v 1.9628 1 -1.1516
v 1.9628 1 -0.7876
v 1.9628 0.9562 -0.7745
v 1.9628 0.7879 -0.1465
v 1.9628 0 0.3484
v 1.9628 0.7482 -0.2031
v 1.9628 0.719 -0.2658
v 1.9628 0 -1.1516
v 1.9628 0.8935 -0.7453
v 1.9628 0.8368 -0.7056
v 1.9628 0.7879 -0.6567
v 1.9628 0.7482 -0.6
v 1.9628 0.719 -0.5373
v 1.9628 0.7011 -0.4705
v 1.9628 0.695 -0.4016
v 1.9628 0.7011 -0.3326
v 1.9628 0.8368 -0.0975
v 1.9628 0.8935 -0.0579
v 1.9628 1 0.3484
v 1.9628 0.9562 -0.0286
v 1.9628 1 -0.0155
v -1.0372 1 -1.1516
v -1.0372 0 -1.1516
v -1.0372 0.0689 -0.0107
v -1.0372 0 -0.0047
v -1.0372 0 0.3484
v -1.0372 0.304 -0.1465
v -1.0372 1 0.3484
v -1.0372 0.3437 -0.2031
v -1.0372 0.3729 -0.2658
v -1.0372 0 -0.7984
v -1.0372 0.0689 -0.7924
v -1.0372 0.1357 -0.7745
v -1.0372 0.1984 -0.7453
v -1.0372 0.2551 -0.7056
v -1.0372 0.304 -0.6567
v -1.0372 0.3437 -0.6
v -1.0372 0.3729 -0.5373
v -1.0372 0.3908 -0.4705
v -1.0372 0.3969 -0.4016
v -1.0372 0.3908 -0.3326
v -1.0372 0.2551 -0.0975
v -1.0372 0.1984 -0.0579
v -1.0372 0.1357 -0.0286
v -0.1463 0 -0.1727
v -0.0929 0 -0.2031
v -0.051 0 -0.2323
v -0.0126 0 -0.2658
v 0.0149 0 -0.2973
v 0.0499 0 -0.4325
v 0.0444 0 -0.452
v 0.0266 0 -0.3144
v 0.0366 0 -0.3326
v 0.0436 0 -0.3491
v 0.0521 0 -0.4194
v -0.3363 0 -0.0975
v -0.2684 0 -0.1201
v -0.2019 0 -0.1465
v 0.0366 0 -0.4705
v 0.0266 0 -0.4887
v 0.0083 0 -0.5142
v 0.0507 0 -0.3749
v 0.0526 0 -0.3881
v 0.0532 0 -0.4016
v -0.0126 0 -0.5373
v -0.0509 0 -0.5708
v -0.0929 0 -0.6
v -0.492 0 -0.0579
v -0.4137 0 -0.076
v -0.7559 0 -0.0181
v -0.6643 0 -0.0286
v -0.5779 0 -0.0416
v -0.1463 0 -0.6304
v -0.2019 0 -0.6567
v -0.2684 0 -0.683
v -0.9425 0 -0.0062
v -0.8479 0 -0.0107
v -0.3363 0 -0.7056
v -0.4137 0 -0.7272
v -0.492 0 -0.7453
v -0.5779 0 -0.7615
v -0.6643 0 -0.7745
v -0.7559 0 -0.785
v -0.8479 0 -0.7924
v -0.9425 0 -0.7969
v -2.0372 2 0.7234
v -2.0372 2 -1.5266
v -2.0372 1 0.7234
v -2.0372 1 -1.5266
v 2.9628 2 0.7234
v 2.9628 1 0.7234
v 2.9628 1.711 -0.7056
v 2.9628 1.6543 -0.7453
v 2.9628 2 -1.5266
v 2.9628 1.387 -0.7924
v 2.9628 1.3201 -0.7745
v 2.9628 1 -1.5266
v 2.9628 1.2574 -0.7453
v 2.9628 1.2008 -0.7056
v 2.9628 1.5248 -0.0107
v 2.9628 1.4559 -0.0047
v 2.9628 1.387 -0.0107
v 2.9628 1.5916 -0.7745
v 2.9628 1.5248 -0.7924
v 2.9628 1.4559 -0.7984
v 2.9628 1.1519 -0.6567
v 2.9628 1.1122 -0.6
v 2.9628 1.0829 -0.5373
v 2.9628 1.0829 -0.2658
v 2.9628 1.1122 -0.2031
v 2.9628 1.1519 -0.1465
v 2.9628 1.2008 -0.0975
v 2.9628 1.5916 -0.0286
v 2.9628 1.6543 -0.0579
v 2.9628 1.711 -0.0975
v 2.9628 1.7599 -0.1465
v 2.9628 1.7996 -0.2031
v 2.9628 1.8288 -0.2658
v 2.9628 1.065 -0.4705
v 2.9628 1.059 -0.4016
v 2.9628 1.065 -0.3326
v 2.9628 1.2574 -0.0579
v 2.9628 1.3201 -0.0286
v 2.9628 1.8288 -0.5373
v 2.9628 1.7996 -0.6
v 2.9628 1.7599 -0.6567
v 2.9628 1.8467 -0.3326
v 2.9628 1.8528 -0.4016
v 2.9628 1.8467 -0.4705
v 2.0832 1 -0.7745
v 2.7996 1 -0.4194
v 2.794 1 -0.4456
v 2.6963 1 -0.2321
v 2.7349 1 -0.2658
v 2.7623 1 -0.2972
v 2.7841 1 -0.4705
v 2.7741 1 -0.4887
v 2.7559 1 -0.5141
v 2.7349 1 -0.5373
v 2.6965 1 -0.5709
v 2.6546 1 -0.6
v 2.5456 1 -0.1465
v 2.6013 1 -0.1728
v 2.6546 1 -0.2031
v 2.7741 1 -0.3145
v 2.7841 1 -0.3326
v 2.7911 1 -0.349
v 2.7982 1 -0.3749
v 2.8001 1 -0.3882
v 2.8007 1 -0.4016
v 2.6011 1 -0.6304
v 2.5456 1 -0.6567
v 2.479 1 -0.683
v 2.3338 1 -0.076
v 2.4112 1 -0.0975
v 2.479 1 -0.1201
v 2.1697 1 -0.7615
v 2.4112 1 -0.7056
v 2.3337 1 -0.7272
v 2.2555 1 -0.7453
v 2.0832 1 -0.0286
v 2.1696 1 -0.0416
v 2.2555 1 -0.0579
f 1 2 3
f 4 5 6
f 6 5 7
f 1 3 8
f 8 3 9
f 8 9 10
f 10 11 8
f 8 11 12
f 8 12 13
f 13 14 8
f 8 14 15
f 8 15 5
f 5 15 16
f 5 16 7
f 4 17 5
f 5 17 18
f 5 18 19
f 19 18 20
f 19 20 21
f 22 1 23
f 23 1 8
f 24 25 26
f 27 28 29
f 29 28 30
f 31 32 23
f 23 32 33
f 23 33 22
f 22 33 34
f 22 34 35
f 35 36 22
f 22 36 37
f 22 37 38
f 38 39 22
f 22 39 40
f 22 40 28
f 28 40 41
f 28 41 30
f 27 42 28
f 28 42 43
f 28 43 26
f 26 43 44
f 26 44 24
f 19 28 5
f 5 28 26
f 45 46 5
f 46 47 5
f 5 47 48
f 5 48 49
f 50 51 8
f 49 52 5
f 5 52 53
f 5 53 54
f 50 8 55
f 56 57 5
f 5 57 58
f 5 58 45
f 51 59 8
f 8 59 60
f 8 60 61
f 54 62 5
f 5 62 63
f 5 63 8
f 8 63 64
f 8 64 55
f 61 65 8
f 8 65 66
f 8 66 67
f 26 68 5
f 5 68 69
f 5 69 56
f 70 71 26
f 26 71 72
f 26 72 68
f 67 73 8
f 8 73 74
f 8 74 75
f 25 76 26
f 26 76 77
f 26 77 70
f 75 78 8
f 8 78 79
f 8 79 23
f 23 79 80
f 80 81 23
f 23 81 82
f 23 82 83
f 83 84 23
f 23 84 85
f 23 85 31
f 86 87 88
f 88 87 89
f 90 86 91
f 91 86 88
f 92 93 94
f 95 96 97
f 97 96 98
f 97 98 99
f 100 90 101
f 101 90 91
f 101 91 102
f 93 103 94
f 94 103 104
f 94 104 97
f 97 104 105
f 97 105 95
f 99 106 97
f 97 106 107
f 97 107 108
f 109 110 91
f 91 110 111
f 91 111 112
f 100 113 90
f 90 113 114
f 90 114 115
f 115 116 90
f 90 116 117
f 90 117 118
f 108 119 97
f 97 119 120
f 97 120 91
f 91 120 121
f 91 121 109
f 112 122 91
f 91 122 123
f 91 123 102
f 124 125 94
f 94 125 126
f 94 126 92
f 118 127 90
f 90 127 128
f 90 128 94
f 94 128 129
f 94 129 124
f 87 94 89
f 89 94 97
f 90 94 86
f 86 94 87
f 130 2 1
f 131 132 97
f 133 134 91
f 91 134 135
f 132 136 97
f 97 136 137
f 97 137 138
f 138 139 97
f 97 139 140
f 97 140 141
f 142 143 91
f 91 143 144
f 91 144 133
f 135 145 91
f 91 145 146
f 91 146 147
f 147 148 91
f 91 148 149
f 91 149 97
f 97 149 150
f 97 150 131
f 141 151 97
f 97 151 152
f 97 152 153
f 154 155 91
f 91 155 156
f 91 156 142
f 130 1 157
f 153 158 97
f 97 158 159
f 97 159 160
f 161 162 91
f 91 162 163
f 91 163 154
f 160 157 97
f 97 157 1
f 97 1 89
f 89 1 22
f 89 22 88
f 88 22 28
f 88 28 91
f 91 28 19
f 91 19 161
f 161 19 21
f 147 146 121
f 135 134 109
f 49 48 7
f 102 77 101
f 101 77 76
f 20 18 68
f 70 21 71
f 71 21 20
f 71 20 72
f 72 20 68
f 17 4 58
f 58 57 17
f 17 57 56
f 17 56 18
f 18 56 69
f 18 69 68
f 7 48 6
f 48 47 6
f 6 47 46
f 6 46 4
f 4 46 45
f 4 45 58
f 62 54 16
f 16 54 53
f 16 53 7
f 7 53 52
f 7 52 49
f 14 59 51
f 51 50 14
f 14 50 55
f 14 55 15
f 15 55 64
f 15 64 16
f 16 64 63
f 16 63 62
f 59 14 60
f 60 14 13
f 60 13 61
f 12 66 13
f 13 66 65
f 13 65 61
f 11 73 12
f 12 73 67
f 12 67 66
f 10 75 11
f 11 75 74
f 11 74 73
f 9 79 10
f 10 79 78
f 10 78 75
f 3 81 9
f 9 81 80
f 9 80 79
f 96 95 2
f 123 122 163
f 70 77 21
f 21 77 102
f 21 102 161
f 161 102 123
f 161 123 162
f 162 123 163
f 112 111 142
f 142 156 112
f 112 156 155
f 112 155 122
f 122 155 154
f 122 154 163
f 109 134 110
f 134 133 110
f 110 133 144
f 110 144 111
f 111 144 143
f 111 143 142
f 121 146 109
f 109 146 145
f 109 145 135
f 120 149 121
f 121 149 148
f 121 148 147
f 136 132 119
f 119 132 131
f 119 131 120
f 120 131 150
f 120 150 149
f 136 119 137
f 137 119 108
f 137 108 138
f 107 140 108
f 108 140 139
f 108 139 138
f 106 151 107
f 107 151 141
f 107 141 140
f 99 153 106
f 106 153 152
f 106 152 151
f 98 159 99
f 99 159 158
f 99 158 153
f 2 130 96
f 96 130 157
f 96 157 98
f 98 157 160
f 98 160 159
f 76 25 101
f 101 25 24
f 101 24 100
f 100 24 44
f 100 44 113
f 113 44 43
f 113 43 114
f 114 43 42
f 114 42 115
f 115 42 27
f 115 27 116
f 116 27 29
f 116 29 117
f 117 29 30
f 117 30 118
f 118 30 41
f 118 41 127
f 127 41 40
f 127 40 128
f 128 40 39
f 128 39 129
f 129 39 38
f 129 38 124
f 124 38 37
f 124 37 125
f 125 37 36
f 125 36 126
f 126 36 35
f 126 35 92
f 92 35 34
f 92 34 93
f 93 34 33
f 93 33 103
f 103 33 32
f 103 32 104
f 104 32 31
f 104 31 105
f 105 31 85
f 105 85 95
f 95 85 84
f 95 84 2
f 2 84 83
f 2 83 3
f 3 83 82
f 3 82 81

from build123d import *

# Parameters (mm, degrees)
SKETCH1_W           = 3
SKETCH1_H           = 1.5
BOSS_EXTRUDE1_DEPTH = 1
SKETCH5_W           = 5
SKETCH5_H           = 2.25
BOSS_EXTRUDE2_DEPTH = 1
SKETCH4_R           = 0.396875


with BuildPart() as part:
    # Sketch1 → Boss-Extrude1 (new body)
    with BuildSketch(Plane(origin=(0, 0, 0), x_dir=(1, 0, 0), z_dir=(0, 1, 0))):
        with Locations((0.462795252, 0.4015625)):
            Rectangle(SKETCH1_W, SKETCH1_H)
    extrude(amount=BOSS_EXTRUDE1_DEPTH)

    # Sketch5 → Boss-Extrude2 (add)
    with BuildSketch(Plane(origin=(0, 1, 0), x_dir=(1, 0, 0), z_dir=(0, 1, 0))):
        with Locations((0.462795252, 0.4015625)):
            Rectangle(SKETCH5_W, SKETCH5_H)
    extrude(amount=BOSS_EXTRUDE2_DEPTH)

    # Cut-Sweep3: sweep along a path in Sketch2
    with BuildLine(Plane.XY) as cut_sweep3_path:
        Line((-1.037204748, 0), (4.752109832, 2.107138184))
    # Sketch4 → Cut-Sweep3 (sweep, cut)
    with BuildSketch(Plane(origin=(-1.037204748, 1, 0), x_dir=(0, 0, 1), z_dir=(-1, 0, 0))):
        with Locations((-0.4015625, -1)):
            Circle(SKETCH4_R)
    sweep(path=cut_sweep3_path.line, mode=Mode.SUBTRACT)


solid = part.part
